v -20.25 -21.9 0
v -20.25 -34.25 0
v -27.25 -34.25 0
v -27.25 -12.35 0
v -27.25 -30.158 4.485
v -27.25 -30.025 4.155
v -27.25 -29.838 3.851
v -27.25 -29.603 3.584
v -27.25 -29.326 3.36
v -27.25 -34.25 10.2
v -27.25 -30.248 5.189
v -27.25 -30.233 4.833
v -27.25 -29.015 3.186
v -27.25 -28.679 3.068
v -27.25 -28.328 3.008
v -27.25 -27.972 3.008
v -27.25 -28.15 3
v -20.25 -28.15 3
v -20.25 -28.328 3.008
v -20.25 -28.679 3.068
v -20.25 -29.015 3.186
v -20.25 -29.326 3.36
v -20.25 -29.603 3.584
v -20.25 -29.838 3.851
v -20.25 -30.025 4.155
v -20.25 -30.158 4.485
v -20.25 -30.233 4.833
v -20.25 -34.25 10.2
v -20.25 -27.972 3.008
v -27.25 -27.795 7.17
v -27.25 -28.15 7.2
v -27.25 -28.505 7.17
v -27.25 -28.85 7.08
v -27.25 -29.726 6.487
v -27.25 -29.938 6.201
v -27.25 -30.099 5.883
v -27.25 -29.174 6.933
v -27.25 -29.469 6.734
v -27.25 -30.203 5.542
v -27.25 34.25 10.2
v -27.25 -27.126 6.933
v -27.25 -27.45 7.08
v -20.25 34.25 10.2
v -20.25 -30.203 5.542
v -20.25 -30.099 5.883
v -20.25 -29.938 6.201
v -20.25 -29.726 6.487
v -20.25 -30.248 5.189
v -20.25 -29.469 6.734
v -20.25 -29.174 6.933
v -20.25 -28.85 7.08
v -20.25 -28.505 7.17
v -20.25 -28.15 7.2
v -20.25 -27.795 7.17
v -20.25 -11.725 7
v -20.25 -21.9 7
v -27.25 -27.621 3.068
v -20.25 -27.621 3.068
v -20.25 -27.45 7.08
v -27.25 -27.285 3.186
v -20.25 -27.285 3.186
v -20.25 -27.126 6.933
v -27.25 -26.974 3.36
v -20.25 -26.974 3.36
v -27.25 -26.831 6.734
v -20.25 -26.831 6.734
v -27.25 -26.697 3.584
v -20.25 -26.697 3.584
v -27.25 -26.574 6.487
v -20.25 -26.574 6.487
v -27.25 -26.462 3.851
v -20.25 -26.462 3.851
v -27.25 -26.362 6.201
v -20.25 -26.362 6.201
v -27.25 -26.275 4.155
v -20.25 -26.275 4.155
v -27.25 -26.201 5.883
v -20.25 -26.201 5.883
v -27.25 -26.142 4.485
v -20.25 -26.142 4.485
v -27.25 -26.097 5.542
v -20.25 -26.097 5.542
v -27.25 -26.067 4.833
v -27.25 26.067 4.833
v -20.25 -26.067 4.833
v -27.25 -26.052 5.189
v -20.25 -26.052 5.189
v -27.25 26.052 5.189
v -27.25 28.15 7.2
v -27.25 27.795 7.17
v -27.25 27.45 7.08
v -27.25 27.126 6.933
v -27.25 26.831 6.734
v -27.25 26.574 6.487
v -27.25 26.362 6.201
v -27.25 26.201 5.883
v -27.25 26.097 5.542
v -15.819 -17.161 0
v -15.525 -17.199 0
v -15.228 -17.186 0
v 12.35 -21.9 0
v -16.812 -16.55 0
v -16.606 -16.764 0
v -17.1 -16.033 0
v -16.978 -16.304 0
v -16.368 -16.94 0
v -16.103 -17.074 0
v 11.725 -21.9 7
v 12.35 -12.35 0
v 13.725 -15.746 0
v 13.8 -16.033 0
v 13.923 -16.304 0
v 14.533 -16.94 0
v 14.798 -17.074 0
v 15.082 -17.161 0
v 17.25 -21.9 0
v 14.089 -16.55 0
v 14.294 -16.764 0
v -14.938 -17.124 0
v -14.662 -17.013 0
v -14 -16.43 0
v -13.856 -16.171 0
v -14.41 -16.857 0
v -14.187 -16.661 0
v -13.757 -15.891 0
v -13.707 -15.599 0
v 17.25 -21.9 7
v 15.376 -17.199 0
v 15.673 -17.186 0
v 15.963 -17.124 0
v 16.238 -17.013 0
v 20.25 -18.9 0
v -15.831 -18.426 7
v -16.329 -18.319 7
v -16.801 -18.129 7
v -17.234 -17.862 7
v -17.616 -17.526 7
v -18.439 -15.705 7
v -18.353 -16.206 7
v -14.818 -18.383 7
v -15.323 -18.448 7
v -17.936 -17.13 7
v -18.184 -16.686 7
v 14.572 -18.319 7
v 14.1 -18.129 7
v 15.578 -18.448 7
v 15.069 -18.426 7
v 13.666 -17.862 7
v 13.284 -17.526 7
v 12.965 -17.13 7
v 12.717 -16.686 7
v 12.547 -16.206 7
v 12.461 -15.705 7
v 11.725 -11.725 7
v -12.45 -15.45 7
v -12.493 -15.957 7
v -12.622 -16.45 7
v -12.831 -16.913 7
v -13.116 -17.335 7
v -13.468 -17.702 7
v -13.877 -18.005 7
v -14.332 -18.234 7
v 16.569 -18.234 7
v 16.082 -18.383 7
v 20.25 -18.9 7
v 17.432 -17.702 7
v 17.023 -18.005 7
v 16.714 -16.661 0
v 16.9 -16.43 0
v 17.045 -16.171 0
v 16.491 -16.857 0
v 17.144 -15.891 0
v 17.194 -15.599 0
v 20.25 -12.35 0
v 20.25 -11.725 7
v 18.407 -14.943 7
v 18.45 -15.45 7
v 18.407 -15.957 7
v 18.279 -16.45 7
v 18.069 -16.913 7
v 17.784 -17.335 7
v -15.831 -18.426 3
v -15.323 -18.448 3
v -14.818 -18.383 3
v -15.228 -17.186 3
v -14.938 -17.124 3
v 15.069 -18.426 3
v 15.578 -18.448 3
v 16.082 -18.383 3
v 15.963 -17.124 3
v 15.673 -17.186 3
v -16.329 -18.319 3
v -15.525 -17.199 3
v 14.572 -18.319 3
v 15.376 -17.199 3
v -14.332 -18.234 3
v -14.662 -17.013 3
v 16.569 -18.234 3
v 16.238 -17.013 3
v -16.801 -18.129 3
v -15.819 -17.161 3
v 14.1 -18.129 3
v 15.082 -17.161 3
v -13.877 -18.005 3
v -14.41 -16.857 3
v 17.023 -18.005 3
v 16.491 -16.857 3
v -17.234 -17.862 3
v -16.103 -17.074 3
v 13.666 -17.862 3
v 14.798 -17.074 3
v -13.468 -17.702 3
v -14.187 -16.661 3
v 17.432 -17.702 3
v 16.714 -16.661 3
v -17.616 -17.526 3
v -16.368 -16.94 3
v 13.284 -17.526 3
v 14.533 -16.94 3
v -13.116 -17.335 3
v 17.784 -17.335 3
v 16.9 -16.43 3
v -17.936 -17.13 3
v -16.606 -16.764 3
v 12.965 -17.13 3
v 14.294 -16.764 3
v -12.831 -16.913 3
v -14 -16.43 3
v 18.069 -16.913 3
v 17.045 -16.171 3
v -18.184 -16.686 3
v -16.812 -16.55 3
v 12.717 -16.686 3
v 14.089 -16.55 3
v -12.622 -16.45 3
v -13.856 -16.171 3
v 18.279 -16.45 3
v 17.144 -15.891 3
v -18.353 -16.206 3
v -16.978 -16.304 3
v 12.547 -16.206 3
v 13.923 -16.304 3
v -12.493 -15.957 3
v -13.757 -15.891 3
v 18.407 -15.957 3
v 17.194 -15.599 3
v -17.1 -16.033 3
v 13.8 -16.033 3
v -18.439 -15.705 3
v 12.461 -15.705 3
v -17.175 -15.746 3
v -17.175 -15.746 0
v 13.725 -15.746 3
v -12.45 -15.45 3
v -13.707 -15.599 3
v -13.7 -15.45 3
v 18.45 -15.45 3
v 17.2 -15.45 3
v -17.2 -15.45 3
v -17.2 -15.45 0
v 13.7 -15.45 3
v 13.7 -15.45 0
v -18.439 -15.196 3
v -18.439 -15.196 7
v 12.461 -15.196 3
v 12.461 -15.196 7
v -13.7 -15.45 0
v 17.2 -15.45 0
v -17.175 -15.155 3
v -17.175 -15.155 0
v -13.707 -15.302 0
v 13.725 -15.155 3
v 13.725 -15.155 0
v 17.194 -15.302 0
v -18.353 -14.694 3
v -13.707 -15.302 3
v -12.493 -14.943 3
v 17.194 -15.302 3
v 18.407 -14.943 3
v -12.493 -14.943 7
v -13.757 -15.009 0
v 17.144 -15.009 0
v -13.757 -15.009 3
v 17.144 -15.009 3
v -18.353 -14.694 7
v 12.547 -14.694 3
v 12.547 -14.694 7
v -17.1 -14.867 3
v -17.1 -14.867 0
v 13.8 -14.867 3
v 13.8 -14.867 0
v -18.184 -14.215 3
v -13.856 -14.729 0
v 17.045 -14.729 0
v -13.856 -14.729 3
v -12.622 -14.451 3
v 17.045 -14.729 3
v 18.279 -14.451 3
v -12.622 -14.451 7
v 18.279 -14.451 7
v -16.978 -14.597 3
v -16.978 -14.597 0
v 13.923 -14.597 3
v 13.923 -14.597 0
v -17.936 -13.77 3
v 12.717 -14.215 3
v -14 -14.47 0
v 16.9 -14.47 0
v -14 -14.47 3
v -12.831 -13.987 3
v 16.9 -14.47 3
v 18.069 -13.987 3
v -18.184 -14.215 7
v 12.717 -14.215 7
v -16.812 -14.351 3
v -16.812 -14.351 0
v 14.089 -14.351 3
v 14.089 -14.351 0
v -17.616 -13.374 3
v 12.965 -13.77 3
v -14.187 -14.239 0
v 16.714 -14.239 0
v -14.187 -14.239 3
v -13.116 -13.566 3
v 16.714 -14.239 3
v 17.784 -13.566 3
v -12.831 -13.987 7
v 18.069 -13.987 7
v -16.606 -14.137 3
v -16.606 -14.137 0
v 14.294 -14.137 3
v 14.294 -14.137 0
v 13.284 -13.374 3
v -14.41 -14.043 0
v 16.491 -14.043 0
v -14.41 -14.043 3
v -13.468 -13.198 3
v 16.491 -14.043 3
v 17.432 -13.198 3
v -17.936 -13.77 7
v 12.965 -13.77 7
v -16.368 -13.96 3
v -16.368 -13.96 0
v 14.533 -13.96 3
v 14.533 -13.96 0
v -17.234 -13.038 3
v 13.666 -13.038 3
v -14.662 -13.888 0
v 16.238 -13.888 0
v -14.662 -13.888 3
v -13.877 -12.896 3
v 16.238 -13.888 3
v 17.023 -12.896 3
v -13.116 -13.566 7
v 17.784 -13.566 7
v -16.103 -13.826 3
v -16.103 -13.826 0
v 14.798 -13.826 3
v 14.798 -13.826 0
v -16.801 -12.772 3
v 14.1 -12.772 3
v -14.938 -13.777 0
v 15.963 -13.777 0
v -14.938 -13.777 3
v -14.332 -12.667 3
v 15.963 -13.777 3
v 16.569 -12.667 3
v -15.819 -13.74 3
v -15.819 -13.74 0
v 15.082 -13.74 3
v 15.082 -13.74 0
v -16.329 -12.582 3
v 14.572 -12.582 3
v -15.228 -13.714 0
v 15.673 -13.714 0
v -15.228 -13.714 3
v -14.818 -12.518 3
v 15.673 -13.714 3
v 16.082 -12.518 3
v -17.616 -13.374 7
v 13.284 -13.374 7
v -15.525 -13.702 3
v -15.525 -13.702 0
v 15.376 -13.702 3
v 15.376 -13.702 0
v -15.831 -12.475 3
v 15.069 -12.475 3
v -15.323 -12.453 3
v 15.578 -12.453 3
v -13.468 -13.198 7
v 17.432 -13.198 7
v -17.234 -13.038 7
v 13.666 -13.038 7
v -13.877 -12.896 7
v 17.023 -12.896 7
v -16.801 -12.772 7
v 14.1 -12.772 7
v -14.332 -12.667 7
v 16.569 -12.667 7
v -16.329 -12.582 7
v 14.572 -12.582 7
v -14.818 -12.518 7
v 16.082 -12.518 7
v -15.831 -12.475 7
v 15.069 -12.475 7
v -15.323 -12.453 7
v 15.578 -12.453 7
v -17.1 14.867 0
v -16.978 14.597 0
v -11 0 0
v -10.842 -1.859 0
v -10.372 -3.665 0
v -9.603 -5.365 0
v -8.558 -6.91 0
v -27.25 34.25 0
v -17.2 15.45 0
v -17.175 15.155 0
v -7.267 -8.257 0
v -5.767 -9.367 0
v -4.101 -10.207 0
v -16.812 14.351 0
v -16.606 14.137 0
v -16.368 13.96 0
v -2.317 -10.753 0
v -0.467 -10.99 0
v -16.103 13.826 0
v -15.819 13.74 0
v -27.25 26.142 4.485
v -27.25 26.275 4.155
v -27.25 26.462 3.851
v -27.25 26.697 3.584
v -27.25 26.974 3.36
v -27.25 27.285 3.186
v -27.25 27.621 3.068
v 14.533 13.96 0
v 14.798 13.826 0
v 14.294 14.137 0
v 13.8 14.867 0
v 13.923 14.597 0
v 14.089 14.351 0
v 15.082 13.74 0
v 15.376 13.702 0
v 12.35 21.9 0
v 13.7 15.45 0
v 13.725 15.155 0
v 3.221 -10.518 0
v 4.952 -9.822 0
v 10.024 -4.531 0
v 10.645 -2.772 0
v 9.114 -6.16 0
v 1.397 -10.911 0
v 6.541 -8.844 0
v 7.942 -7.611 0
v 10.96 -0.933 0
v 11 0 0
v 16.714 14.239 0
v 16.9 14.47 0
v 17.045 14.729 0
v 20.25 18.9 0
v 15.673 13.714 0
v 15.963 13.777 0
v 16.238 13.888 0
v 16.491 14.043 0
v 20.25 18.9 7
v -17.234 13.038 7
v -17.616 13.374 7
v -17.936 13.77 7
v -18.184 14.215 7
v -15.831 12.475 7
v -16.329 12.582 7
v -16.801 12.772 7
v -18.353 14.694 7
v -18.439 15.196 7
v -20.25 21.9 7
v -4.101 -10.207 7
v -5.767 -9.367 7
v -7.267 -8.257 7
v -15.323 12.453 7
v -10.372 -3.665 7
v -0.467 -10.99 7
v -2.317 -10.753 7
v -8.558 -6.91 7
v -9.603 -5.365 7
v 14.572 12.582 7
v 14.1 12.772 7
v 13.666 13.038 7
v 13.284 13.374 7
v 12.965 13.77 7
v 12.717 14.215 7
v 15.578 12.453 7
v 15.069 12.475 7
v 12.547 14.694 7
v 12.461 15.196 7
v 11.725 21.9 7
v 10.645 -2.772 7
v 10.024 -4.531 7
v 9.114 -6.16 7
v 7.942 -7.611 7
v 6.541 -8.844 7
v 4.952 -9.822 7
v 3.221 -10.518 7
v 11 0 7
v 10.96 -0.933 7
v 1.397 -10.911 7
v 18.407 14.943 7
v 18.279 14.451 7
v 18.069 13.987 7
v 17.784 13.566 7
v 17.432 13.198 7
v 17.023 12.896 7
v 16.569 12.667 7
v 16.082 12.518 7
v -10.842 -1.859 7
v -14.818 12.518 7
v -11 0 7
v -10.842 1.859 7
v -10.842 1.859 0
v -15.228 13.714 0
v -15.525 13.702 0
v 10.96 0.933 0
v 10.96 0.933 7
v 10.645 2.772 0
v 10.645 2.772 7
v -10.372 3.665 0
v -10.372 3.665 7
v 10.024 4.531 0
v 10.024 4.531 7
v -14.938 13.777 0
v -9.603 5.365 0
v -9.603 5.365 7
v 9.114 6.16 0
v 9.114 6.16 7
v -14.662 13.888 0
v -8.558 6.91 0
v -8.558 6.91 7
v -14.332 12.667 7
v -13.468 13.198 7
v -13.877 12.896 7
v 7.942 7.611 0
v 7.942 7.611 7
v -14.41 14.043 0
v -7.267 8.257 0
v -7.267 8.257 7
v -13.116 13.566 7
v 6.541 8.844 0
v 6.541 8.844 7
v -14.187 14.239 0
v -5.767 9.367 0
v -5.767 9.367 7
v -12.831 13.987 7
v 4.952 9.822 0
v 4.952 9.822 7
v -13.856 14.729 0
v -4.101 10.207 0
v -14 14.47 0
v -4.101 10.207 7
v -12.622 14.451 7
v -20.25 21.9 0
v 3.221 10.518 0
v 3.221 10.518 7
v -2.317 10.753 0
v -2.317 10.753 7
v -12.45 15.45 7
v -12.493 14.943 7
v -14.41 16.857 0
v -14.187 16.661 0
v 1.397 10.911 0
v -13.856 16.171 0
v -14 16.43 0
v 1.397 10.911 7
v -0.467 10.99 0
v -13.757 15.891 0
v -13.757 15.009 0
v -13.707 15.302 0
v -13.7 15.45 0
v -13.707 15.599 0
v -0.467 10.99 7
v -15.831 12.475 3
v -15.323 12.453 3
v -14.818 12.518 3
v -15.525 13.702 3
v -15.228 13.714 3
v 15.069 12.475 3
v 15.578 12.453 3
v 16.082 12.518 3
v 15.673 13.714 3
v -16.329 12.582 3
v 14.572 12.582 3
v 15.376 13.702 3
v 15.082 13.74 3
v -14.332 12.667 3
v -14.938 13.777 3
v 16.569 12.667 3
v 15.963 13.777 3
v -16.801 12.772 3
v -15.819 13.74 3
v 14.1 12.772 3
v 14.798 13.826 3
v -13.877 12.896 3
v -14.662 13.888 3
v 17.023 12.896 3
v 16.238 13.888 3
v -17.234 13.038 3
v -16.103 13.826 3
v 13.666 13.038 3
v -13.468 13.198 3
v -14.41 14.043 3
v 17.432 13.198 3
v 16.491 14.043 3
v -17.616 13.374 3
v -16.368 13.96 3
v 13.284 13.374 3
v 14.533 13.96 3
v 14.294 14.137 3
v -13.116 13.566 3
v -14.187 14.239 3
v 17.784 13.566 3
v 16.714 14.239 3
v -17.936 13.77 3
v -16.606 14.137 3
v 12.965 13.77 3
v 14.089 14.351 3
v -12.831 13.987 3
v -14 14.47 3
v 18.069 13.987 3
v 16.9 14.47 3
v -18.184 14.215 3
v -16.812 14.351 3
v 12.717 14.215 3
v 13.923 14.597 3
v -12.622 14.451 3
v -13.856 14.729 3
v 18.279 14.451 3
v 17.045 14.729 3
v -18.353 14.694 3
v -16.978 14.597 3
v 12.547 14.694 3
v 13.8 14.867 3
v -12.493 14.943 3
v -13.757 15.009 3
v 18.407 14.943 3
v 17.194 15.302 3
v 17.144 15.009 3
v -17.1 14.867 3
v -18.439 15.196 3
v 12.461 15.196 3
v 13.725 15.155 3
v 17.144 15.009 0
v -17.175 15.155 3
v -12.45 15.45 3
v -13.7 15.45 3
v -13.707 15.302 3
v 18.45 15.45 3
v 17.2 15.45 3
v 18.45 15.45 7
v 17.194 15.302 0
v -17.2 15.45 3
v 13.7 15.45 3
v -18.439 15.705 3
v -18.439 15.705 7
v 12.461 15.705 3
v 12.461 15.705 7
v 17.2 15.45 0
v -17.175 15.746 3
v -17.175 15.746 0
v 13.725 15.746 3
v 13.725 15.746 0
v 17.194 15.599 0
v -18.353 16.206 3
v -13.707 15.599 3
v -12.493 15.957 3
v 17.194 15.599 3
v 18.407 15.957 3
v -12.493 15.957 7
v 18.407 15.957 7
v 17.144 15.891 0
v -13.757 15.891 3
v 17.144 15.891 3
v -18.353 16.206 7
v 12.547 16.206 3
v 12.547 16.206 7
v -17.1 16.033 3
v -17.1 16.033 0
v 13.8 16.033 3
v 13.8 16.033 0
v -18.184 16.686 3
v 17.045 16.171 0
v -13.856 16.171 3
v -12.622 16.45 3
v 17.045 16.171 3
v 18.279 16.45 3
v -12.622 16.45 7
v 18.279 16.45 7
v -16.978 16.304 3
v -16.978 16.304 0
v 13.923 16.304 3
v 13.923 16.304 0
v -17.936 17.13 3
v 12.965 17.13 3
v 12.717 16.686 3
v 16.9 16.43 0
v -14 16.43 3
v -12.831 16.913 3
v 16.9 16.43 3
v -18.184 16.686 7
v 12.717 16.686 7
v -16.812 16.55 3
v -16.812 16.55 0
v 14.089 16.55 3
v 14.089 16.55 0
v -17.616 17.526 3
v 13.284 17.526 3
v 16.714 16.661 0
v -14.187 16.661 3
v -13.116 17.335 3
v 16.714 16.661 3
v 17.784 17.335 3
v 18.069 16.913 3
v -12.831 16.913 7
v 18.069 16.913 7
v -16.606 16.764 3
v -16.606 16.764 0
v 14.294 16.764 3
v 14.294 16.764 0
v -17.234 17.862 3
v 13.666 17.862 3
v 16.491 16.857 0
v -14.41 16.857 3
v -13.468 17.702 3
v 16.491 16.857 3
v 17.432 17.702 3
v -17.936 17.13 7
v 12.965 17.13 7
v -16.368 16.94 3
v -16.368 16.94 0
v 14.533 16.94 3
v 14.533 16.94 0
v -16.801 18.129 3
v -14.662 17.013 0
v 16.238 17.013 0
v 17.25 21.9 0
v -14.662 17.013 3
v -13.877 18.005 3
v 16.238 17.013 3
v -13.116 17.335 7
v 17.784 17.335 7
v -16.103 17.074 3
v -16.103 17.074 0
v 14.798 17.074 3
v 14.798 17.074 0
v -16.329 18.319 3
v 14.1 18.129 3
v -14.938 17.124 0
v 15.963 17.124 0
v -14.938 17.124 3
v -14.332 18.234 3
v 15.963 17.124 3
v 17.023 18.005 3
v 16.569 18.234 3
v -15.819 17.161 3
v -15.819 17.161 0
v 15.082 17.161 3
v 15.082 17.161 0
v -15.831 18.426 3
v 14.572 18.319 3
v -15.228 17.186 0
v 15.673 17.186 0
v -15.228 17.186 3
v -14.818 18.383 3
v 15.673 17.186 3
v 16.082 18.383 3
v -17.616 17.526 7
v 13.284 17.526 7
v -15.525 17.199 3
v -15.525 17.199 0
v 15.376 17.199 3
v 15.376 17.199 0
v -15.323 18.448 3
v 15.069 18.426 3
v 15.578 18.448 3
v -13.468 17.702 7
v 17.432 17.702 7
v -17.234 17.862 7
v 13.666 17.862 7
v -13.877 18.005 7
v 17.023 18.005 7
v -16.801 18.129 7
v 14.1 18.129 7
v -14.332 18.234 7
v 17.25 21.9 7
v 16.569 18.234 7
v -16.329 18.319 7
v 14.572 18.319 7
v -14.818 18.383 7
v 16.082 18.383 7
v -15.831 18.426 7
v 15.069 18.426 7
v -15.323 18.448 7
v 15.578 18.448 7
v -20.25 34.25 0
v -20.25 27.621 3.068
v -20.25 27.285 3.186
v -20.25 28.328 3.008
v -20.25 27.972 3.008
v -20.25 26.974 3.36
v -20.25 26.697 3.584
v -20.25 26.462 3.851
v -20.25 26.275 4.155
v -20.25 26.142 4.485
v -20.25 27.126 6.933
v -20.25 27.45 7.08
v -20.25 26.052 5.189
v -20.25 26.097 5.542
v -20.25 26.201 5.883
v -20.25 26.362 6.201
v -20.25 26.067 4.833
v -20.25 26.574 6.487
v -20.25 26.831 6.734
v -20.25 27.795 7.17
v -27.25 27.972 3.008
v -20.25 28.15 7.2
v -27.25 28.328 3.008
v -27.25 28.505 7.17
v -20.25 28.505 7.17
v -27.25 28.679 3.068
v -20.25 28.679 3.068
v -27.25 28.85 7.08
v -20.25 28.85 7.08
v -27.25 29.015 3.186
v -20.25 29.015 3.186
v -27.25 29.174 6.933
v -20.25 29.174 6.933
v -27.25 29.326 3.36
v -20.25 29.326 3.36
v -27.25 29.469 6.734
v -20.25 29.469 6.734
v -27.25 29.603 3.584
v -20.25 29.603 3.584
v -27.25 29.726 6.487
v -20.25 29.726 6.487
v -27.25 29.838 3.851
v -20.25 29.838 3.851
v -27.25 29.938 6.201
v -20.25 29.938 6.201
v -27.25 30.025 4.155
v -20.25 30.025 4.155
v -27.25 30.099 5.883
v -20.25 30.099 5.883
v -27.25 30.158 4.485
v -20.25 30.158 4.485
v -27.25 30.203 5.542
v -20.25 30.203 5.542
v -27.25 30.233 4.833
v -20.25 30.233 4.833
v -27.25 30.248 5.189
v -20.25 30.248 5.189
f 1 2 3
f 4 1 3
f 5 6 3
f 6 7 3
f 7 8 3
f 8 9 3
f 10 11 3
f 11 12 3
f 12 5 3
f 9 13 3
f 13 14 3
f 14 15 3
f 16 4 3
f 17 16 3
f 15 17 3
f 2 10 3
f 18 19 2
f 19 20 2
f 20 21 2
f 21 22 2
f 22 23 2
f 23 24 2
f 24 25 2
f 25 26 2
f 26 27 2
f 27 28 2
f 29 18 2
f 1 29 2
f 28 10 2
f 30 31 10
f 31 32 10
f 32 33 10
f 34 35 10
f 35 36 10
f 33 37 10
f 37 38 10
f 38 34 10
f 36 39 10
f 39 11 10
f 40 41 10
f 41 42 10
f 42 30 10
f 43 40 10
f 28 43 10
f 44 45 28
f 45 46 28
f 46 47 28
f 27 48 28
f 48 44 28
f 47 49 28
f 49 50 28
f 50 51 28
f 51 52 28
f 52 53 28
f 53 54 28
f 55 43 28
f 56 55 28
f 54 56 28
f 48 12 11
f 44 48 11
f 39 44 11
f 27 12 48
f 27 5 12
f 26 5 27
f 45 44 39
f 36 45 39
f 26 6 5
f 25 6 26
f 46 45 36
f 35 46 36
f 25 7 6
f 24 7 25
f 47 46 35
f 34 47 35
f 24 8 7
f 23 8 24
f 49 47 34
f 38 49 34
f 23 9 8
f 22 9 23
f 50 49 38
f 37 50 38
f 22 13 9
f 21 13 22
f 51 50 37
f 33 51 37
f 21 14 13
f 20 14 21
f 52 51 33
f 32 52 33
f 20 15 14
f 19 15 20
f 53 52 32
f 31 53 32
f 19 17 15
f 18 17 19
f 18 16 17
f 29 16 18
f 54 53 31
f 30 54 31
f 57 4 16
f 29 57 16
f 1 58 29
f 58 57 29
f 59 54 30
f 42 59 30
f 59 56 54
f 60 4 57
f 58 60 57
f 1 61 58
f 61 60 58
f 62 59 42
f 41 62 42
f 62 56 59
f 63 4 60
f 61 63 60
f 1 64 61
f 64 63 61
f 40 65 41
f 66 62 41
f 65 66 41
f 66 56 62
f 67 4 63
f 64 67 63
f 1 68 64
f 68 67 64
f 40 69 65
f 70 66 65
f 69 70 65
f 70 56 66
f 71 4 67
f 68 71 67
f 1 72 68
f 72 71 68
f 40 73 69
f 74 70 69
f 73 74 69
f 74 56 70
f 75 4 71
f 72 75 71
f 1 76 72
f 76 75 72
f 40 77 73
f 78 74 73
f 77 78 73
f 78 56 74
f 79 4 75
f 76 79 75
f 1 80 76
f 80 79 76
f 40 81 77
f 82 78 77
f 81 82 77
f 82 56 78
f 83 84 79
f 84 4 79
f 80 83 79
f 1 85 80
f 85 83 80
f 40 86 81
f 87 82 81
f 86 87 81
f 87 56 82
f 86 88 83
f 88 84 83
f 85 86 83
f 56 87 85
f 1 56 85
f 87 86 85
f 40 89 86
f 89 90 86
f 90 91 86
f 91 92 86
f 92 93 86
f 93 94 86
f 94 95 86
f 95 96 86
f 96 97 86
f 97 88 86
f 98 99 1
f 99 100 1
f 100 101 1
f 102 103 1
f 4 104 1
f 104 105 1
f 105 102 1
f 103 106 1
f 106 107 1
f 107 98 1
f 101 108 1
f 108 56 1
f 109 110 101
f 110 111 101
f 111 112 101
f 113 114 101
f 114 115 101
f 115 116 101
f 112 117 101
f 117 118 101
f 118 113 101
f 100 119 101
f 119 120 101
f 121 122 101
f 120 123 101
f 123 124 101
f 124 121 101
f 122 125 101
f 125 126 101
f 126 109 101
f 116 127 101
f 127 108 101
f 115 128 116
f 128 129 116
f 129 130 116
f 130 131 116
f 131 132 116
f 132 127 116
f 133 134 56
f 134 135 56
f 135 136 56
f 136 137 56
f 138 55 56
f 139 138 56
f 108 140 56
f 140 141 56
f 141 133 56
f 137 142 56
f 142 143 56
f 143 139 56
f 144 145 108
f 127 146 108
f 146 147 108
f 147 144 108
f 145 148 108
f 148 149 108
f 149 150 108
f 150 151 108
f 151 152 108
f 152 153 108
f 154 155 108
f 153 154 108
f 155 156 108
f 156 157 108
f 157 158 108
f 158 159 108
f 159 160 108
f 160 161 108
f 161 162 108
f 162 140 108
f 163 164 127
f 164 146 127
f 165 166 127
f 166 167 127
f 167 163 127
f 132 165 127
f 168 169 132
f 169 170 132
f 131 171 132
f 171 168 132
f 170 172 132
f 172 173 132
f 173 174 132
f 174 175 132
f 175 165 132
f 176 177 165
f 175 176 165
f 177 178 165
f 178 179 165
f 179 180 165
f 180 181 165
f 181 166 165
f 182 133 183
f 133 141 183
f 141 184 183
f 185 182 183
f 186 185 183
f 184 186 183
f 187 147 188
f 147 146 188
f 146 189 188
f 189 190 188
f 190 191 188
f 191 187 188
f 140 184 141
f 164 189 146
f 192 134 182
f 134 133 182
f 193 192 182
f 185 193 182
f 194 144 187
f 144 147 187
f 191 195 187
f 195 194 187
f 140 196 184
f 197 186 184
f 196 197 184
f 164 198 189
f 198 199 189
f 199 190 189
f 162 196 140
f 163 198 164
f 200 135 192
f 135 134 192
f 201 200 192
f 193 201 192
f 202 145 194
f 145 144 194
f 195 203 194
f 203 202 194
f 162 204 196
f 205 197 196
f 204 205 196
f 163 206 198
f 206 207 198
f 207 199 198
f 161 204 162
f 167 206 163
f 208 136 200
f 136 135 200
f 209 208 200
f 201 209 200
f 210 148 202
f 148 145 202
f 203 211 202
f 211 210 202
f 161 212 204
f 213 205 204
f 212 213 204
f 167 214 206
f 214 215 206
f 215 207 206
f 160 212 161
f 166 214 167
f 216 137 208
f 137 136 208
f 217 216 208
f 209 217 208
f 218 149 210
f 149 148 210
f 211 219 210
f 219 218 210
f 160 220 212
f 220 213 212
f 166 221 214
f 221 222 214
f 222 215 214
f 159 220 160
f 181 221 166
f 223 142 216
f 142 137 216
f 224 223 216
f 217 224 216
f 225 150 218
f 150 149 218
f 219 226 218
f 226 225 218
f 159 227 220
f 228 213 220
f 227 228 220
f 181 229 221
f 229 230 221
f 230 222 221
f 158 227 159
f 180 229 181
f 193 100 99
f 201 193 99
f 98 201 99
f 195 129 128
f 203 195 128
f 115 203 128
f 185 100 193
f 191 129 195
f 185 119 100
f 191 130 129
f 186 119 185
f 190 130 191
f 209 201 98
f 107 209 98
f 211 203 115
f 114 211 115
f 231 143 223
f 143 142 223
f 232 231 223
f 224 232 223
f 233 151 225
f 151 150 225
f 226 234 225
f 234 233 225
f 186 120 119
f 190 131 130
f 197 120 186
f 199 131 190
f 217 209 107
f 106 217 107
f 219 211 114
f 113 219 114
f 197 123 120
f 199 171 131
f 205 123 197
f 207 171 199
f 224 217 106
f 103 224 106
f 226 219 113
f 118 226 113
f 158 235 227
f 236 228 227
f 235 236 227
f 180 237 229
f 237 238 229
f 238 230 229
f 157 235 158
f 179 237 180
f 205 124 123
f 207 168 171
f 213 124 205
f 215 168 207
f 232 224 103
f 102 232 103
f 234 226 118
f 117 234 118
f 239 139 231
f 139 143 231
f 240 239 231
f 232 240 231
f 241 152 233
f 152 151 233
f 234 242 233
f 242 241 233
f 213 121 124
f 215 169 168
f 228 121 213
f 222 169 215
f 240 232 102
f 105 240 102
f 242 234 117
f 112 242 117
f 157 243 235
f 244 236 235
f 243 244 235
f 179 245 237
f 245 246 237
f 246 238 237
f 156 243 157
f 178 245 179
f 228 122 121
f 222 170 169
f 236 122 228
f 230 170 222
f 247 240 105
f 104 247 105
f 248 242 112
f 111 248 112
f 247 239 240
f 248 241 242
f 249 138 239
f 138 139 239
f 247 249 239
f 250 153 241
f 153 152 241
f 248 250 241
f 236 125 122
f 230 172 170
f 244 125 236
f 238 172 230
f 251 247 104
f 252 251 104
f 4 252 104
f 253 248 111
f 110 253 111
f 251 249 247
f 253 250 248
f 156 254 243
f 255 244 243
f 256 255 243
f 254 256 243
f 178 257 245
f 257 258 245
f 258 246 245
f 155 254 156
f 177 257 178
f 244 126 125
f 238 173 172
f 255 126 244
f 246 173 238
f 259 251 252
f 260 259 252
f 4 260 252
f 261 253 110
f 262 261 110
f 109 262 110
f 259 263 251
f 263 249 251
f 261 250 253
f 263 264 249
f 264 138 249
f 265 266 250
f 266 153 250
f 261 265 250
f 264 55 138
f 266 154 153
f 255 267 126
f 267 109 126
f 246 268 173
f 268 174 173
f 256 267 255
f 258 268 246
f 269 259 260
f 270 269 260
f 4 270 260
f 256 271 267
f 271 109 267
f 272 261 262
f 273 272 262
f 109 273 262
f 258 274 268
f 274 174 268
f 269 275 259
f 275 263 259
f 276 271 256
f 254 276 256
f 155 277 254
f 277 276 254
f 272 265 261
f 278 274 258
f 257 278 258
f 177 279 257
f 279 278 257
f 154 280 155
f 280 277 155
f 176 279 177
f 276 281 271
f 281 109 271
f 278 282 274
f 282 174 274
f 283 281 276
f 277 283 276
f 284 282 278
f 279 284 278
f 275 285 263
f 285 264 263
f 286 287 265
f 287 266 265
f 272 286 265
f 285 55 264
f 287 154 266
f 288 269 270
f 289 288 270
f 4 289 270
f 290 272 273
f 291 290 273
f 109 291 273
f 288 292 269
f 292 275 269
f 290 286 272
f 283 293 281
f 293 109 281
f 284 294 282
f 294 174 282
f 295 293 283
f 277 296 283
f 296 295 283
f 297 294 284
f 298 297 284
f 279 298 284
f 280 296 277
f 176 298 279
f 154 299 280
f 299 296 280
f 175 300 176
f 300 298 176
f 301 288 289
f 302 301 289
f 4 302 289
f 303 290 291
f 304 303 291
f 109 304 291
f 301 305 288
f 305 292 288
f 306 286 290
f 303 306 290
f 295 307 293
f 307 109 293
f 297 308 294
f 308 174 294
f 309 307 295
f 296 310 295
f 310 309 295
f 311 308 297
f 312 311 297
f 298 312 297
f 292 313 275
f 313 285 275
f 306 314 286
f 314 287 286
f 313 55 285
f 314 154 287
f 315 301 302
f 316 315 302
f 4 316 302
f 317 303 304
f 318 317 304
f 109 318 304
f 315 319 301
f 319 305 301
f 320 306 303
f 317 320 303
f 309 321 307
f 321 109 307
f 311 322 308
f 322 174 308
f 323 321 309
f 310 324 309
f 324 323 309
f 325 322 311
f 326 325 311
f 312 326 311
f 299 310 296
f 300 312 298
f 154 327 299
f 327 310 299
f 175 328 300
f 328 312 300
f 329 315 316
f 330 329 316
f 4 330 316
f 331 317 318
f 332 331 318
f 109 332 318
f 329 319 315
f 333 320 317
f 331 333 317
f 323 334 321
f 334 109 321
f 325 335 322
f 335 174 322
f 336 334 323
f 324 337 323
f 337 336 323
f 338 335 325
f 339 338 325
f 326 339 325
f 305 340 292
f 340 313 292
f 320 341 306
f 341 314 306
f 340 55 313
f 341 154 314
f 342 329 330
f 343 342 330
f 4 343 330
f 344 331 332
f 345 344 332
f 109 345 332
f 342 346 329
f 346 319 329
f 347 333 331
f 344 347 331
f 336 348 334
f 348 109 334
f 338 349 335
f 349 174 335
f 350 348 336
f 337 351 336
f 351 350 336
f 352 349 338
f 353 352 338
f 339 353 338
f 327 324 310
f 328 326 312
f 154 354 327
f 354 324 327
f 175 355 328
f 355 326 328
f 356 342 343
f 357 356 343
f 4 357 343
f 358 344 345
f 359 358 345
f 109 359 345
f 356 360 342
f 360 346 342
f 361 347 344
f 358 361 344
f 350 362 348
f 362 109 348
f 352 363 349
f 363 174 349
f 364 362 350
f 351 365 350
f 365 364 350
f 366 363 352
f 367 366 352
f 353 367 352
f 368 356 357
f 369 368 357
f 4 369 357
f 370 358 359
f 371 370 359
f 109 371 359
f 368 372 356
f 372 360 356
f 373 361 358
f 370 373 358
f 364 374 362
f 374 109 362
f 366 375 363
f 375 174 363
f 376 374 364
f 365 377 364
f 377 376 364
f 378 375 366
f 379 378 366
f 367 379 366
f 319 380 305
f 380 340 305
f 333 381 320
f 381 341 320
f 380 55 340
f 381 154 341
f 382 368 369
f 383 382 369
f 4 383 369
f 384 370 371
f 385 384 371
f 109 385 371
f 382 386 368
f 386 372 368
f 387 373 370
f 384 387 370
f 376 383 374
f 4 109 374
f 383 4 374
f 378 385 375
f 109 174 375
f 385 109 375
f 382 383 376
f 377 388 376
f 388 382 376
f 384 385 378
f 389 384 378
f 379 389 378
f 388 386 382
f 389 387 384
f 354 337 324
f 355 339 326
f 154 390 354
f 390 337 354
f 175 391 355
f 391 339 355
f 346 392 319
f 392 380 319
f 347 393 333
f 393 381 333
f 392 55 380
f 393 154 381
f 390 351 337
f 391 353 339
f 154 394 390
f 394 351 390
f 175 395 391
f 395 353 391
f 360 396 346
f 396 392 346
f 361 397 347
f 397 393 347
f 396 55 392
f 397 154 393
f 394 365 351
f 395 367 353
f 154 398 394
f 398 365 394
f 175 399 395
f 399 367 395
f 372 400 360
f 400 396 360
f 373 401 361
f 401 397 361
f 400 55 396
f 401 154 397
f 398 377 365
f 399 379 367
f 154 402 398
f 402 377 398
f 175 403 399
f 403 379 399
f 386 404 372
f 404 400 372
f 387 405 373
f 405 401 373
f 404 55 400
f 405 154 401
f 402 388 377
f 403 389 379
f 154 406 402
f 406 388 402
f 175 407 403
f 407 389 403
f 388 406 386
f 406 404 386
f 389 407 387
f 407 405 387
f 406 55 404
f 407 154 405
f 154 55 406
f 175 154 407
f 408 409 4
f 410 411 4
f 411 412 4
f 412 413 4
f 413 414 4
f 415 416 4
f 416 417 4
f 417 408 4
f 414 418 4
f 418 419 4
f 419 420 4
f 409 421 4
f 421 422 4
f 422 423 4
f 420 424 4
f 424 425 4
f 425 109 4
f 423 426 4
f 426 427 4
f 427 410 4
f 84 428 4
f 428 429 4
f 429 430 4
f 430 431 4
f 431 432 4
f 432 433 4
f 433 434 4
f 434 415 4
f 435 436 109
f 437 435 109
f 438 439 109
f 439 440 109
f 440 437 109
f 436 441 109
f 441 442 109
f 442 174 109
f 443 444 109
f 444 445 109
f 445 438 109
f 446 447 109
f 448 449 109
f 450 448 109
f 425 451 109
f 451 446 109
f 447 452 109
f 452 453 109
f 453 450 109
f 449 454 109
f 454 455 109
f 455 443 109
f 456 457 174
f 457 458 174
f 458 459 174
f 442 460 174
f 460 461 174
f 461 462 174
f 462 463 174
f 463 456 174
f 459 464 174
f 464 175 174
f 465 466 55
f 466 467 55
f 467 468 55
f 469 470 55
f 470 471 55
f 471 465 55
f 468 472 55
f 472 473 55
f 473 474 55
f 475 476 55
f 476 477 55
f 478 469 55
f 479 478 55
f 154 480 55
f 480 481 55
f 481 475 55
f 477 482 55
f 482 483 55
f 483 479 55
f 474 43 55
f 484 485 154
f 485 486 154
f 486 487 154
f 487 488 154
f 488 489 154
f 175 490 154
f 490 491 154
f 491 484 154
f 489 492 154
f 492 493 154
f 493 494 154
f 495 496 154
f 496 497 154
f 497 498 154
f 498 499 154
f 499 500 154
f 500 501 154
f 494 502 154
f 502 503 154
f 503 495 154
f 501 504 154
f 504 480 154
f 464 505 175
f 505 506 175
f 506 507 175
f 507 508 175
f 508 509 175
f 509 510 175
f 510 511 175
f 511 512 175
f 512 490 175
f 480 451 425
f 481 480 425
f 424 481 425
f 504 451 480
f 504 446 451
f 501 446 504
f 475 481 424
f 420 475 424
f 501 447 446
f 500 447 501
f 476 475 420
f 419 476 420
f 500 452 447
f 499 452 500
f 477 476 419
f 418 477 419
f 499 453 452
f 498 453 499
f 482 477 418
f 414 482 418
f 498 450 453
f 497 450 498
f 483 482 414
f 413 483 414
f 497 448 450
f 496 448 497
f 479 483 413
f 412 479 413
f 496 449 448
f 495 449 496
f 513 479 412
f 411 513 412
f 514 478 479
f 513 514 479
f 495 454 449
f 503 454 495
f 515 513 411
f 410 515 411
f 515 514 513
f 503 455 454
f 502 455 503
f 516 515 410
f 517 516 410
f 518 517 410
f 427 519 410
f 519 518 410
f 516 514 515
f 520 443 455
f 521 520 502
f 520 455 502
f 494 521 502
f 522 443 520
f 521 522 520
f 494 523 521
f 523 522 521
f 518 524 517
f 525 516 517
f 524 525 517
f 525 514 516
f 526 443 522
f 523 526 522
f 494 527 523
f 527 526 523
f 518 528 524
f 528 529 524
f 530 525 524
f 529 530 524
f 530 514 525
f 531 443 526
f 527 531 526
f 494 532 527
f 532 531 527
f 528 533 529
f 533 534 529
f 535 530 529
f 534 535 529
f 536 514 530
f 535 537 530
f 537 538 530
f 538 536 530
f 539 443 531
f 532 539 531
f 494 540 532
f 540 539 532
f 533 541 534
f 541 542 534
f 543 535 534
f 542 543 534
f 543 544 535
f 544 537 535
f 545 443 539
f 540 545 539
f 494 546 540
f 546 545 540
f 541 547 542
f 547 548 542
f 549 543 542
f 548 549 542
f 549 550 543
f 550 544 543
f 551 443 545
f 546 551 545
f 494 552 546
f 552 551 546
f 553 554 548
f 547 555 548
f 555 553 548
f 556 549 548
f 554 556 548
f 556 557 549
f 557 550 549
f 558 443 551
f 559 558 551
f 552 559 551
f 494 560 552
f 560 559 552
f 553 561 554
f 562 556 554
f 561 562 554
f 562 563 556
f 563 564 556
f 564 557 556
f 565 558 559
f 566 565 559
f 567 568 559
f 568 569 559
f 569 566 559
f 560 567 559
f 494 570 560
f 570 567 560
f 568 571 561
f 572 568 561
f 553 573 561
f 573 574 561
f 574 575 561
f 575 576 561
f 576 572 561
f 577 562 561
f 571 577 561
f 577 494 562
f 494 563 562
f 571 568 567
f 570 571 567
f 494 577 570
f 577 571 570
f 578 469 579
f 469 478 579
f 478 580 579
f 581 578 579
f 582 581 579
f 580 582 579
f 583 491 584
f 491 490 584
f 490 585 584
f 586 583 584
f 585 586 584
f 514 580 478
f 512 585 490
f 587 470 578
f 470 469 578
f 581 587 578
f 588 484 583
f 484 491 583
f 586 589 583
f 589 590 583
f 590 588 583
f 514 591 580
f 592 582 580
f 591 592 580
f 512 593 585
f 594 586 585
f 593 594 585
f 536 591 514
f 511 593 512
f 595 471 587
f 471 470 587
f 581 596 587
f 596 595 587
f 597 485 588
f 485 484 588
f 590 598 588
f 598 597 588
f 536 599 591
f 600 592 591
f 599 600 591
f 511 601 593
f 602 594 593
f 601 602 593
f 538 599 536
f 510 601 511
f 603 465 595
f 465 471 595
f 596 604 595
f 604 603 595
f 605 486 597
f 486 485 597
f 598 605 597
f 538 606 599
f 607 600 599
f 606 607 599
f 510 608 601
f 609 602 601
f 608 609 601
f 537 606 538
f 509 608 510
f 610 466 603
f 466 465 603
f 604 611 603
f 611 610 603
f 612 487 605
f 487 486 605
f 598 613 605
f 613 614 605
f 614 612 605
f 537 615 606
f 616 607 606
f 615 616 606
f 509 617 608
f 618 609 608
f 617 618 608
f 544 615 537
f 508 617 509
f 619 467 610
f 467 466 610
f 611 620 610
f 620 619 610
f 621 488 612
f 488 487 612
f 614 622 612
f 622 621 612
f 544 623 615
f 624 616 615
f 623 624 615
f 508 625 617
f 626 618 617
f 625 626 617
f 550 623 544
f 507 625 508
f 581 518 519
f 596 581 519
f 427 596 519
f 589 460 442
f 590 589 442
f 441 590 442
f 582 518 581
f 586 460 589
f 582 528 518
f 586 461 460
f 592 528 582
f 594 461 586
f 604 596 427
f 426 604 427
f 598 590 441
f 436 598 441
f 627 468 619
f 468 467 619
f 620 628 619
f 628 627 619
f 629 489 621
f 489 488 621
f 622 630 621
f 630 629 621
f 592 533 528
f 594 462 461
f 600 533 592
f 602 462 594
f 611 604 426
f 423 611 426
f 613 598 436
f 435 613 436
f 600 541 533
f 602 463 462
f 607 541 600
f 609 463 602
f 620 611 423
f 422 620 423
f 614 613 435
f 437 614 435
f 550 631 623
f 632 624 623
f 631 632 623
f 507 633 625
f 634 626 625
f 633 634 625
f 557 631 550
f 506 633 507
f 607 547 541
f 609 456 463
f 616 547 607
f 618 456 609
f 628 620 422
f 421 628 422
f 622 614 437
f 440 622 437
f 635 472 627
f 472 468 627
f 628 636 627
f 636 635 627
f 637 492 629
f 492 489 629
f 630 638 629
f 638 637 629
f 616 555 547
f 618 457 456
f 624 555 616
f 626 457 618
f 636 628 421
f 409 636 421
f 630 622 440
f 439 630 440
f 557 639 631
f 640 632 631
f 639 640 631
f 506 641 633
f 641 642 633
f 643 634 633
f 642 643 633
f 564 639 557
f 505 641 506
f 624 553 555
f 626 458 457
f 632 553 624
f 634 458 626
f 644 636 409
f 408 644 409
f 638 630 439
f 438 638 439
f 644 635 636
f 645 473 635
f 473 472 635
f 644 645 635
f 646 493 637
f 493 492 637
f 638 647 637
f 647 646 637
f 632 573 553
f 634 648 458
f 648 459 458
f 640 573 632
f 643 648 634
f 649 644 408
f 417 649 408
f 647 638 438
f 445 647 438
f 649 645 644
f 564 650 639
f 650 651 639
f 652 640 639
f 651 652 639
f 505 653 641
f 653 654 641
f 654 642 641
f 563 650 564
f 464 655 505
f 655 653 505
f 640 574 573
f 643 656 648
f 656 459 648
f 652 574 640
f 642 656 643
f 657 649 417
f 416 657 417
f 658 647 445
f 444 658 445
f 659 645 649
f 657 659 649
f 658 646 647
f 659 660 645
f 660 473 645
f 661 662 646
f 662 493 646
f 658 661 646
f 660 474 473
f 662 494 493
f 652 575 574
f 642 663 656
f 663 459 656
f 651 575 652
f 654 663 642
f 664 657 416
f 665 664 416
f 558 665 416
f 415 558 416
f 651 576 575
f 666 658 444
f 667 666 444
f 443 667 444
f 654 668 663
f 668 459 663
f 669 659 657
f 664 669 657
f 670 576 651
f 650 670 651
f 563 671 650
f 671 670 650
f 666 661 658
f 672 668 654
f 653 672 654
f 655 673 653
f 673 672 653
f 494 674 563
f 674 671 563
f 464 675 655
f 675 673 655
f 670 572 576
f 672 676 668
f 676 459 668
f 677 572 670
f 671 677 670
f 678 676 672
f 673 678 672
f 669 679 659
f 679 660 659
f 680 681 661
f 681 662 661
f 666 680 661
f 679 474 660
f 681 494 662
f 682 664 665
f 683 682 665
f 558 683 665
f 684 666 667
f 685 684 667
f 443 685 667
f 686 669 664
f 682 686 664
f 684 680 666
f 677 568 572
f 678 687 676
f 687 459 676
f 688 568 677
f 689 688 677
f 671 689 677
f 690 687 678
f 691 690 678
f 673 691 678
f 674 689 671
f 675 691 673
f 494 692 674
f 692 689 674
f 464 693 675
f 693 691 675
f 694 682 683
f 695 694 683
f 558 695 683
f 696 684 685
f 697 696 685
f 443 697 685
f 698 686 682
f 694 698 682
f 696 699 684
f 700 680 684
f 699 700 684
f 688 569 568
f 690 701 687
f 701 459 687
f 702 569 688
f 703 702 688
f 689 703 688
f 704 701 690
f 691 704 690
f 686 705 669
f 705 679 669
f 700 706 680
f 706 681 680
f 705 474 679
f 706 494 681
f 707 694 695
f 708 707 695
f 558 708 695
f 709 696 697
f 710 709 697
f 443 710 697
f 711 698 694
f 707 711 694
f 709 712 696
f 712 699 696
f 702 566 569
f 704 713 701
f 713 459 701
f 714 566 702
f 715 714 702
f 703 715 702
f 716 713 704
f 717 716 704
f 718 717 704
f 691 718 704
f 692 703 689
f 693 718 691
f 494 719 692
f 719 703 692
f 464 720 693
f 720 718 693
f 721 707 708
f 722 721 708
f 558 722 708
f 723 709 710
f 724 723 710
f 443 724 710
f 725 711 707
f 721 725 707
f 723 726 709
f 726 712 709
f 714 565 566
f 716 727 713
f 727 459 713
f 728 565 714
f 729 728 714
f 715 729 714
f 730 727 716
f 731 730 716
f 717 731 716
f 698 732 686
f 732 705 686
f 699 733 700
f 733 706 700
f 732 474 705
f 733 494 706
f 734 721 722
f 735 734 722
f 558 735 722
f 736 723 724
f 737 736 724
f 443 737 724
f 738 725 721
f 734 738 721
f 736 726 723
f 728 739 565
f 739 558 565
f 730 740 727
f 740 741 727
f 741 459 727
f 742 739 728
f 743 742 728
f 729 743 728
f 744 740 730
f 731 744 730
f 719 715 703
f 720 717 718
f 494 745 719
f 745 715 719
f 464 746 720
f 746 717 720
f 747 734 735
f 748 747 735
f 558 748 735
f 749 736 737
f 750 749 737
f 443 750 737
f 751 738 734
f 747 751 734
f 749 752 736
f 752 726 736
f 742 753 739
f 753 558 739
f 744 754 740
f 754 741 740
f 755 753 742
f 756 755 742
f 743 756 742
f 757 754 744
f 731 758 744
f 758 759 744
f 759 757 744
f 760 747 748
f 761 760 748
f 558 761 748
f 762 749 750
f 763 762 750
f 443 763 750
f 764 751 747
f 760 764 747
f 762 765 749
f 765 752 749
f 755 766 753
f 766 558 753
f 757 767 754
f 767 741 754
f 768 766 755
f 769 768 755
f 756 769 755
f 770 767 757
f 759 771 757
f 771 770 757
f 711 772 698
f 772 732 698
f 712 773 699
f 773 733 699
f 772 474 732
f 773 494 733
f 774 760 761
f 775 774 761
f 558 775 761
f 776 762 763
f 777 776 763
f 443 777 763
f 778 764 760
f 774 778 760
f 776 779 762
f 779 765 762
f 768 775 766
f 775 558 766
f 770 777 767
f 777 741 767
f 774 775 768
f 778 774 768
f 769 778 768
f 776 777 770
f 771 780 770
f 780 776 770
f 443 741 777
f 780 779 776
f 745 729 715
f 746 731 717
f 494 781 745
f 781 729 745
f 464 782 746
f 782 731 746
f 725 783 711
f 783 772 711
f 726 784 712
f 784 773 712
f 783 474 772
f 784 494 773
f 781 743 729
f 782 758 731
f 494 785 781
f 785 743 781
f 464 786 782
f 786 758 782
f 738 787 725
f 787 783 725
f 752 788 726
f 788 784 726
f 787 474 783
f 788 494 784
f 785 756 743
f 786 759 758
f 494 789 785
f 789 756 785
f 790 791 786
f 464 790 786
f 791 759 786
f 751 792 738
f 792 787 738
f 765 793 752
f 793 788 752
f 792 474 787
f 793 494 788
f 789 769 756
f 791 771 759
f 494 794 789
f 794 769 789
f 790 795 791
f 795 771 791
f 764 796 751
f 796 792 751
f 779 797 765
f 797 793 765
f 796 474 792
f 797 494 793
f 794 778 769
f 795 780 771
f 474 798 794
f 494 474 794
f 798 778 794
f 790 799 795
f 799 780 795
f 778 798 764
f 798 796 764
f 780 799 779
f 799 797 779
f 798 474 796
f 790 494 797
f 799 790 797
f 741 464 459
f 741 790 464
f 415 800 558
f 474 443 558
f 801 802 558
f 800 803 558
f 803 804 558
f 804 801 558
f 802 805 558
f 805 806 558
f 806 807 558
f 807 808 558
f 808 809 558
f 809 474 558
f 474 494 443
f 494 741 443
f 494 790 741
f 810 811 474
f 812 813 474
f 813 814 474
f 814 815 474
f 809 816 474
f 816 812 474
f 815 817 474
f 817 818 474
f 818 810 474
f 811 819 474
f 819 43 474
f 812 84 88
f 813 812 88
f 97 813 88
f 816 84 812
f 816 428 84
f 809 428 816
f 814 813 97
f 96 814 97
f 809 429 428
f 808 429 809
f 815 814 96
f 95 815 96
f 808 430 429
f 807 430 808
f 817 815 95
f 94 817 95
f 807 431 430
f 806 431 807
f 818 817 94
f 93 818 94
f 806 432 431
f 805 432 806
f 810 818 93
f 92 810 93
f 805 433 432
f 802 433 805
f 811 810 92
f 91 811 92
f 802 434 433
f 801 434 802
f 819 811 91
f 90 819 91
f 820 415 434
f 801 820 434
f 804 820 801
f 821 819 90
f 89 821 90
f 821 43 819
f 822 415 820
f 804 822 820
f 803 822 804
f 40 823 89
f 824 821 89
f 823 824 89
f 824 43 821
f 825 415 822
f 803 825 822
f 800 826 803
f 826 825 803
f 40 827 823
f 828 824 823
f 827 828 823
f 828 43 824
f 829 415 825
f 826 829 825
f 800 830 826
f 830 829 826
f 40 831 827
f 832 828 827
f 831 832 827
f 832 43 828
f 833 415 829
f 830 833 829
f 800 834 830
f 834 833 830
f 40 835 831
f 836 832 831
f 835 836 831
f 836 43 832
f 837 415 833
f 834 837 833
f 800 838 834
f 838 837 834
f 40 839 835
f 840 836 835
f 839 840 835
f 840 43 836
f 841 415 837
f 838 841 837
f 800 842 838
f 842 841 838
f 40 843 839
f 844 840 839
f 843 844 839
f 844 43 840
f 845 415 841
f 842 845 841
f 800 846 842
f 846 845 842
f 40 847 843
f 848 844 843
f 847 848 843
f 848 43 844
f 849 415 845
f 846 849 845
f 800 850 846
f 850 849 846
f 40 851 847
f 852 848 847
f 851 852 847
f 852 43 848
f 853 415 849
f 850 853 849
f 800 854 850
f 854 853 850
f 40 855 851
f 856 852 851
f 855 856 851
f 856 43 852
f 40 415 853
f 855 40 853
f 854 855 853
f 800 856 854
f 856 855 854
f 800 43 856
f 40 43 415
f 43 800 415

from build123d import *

# Parameters (mm, degrees)
CROQUIS1_R              = 11
CROQUIS1_R_2            = 1.75
SALIENTE_EXTRUIR1_DEPTH = 7
CROQUIS2_R              = 3
CORTAR_EXTRUIR1_DEPTH   = 4
CROQUIS3_W              = 7
CROQUIS3_H              = 68.5
SALIENTE_EXTRUIR2_DEPTH = 10.2
CROQUIS4_R              = 2.1
CORTAR_EXTRUIR2_DEPTH   = 7


with BuildPart() as part:
    # Croquis1 → Saliente-Extruir1 (new body)
    with BuildSketch(Plane.XY):
        Polygon((17.25, -21.9), (20.25, -18.9), (20.25, 18.9), (17.25, 21.9), (-20.25, 21.9), (-20.25, -21.9), align=None)
        Circle(CROQUIS1_R, mode=Mode.SUBTRACT)
        with Locations((15.450283169, 15.450283169)):
            Circle(CROQUIS1_R_2, mode=Mode.SUBTRACT)
        with Locations((15.450283169, -15.450283169)):
            Circle(CROQUIS1_R_2, mode=Mode.SUBTRACT)
        with Locations((-15.450283169, -15.450283169)):
            Circle(CROQUIS1_R_2, mode=Mode.SUBTRACT)
        with Locations((-15.450283169, 15.450283169)):
            Circle(CROQUIS1_R_2, mode=Mode.SUBTRACT)
    extrude(amount=SALIENTE_EXTRUIR1_DEPTH)

    # Croquis2 → Cortar-Extruir1 (cut)
    with BuildSketch(Plane.XY.offset(7)):
        with Locations((15.450283169, 15.450283169)):
            Circle(CROQUIS2_R)
        with Locations((15.450283169, -15.450283169)):
            Circle(CROQUIS2_R)
        with Locations((-15.450283169, -15.450283169)):
            Circle(CROQUIS2_R)
        with Locations((-15.450283169, 15.450283169)):
            Circle(CROQUIS2_R)
    extrude(amount=-CORTAR_EXTRUIR1_DEPTH, mode=Mode.SUBTRACT)

    # Croquis3 → Saliente-Extruir2 (add)
    with BuildSketch(Plane(origin=(0, 0, 0), x_dir=(-1, 0, 0), z_dir=(0, 0, -1))):
        with Locations((23.75, 0)):
            Rectangle(CROQUIS3_W, CROQUIS3_H)
    extrude(amount=-SALIENTE_EXTRUIR2_DEPTH)

    # Croquis4 → Cortar-Extruir2 (cut)
    with BuildSketch(Plane.ZY.offset(27.25)):
        with Locations((5.1, 28.15)):
            Circle(CROQUIS4_R)
        with Locations((5.1, -28.15)):
            Circle(CROQUIS4_R)
    extrude(amount=-CORTAR_EXTRUIR2_DEPTH, mode=Mode.SUBTRACT)


solid = part.part
